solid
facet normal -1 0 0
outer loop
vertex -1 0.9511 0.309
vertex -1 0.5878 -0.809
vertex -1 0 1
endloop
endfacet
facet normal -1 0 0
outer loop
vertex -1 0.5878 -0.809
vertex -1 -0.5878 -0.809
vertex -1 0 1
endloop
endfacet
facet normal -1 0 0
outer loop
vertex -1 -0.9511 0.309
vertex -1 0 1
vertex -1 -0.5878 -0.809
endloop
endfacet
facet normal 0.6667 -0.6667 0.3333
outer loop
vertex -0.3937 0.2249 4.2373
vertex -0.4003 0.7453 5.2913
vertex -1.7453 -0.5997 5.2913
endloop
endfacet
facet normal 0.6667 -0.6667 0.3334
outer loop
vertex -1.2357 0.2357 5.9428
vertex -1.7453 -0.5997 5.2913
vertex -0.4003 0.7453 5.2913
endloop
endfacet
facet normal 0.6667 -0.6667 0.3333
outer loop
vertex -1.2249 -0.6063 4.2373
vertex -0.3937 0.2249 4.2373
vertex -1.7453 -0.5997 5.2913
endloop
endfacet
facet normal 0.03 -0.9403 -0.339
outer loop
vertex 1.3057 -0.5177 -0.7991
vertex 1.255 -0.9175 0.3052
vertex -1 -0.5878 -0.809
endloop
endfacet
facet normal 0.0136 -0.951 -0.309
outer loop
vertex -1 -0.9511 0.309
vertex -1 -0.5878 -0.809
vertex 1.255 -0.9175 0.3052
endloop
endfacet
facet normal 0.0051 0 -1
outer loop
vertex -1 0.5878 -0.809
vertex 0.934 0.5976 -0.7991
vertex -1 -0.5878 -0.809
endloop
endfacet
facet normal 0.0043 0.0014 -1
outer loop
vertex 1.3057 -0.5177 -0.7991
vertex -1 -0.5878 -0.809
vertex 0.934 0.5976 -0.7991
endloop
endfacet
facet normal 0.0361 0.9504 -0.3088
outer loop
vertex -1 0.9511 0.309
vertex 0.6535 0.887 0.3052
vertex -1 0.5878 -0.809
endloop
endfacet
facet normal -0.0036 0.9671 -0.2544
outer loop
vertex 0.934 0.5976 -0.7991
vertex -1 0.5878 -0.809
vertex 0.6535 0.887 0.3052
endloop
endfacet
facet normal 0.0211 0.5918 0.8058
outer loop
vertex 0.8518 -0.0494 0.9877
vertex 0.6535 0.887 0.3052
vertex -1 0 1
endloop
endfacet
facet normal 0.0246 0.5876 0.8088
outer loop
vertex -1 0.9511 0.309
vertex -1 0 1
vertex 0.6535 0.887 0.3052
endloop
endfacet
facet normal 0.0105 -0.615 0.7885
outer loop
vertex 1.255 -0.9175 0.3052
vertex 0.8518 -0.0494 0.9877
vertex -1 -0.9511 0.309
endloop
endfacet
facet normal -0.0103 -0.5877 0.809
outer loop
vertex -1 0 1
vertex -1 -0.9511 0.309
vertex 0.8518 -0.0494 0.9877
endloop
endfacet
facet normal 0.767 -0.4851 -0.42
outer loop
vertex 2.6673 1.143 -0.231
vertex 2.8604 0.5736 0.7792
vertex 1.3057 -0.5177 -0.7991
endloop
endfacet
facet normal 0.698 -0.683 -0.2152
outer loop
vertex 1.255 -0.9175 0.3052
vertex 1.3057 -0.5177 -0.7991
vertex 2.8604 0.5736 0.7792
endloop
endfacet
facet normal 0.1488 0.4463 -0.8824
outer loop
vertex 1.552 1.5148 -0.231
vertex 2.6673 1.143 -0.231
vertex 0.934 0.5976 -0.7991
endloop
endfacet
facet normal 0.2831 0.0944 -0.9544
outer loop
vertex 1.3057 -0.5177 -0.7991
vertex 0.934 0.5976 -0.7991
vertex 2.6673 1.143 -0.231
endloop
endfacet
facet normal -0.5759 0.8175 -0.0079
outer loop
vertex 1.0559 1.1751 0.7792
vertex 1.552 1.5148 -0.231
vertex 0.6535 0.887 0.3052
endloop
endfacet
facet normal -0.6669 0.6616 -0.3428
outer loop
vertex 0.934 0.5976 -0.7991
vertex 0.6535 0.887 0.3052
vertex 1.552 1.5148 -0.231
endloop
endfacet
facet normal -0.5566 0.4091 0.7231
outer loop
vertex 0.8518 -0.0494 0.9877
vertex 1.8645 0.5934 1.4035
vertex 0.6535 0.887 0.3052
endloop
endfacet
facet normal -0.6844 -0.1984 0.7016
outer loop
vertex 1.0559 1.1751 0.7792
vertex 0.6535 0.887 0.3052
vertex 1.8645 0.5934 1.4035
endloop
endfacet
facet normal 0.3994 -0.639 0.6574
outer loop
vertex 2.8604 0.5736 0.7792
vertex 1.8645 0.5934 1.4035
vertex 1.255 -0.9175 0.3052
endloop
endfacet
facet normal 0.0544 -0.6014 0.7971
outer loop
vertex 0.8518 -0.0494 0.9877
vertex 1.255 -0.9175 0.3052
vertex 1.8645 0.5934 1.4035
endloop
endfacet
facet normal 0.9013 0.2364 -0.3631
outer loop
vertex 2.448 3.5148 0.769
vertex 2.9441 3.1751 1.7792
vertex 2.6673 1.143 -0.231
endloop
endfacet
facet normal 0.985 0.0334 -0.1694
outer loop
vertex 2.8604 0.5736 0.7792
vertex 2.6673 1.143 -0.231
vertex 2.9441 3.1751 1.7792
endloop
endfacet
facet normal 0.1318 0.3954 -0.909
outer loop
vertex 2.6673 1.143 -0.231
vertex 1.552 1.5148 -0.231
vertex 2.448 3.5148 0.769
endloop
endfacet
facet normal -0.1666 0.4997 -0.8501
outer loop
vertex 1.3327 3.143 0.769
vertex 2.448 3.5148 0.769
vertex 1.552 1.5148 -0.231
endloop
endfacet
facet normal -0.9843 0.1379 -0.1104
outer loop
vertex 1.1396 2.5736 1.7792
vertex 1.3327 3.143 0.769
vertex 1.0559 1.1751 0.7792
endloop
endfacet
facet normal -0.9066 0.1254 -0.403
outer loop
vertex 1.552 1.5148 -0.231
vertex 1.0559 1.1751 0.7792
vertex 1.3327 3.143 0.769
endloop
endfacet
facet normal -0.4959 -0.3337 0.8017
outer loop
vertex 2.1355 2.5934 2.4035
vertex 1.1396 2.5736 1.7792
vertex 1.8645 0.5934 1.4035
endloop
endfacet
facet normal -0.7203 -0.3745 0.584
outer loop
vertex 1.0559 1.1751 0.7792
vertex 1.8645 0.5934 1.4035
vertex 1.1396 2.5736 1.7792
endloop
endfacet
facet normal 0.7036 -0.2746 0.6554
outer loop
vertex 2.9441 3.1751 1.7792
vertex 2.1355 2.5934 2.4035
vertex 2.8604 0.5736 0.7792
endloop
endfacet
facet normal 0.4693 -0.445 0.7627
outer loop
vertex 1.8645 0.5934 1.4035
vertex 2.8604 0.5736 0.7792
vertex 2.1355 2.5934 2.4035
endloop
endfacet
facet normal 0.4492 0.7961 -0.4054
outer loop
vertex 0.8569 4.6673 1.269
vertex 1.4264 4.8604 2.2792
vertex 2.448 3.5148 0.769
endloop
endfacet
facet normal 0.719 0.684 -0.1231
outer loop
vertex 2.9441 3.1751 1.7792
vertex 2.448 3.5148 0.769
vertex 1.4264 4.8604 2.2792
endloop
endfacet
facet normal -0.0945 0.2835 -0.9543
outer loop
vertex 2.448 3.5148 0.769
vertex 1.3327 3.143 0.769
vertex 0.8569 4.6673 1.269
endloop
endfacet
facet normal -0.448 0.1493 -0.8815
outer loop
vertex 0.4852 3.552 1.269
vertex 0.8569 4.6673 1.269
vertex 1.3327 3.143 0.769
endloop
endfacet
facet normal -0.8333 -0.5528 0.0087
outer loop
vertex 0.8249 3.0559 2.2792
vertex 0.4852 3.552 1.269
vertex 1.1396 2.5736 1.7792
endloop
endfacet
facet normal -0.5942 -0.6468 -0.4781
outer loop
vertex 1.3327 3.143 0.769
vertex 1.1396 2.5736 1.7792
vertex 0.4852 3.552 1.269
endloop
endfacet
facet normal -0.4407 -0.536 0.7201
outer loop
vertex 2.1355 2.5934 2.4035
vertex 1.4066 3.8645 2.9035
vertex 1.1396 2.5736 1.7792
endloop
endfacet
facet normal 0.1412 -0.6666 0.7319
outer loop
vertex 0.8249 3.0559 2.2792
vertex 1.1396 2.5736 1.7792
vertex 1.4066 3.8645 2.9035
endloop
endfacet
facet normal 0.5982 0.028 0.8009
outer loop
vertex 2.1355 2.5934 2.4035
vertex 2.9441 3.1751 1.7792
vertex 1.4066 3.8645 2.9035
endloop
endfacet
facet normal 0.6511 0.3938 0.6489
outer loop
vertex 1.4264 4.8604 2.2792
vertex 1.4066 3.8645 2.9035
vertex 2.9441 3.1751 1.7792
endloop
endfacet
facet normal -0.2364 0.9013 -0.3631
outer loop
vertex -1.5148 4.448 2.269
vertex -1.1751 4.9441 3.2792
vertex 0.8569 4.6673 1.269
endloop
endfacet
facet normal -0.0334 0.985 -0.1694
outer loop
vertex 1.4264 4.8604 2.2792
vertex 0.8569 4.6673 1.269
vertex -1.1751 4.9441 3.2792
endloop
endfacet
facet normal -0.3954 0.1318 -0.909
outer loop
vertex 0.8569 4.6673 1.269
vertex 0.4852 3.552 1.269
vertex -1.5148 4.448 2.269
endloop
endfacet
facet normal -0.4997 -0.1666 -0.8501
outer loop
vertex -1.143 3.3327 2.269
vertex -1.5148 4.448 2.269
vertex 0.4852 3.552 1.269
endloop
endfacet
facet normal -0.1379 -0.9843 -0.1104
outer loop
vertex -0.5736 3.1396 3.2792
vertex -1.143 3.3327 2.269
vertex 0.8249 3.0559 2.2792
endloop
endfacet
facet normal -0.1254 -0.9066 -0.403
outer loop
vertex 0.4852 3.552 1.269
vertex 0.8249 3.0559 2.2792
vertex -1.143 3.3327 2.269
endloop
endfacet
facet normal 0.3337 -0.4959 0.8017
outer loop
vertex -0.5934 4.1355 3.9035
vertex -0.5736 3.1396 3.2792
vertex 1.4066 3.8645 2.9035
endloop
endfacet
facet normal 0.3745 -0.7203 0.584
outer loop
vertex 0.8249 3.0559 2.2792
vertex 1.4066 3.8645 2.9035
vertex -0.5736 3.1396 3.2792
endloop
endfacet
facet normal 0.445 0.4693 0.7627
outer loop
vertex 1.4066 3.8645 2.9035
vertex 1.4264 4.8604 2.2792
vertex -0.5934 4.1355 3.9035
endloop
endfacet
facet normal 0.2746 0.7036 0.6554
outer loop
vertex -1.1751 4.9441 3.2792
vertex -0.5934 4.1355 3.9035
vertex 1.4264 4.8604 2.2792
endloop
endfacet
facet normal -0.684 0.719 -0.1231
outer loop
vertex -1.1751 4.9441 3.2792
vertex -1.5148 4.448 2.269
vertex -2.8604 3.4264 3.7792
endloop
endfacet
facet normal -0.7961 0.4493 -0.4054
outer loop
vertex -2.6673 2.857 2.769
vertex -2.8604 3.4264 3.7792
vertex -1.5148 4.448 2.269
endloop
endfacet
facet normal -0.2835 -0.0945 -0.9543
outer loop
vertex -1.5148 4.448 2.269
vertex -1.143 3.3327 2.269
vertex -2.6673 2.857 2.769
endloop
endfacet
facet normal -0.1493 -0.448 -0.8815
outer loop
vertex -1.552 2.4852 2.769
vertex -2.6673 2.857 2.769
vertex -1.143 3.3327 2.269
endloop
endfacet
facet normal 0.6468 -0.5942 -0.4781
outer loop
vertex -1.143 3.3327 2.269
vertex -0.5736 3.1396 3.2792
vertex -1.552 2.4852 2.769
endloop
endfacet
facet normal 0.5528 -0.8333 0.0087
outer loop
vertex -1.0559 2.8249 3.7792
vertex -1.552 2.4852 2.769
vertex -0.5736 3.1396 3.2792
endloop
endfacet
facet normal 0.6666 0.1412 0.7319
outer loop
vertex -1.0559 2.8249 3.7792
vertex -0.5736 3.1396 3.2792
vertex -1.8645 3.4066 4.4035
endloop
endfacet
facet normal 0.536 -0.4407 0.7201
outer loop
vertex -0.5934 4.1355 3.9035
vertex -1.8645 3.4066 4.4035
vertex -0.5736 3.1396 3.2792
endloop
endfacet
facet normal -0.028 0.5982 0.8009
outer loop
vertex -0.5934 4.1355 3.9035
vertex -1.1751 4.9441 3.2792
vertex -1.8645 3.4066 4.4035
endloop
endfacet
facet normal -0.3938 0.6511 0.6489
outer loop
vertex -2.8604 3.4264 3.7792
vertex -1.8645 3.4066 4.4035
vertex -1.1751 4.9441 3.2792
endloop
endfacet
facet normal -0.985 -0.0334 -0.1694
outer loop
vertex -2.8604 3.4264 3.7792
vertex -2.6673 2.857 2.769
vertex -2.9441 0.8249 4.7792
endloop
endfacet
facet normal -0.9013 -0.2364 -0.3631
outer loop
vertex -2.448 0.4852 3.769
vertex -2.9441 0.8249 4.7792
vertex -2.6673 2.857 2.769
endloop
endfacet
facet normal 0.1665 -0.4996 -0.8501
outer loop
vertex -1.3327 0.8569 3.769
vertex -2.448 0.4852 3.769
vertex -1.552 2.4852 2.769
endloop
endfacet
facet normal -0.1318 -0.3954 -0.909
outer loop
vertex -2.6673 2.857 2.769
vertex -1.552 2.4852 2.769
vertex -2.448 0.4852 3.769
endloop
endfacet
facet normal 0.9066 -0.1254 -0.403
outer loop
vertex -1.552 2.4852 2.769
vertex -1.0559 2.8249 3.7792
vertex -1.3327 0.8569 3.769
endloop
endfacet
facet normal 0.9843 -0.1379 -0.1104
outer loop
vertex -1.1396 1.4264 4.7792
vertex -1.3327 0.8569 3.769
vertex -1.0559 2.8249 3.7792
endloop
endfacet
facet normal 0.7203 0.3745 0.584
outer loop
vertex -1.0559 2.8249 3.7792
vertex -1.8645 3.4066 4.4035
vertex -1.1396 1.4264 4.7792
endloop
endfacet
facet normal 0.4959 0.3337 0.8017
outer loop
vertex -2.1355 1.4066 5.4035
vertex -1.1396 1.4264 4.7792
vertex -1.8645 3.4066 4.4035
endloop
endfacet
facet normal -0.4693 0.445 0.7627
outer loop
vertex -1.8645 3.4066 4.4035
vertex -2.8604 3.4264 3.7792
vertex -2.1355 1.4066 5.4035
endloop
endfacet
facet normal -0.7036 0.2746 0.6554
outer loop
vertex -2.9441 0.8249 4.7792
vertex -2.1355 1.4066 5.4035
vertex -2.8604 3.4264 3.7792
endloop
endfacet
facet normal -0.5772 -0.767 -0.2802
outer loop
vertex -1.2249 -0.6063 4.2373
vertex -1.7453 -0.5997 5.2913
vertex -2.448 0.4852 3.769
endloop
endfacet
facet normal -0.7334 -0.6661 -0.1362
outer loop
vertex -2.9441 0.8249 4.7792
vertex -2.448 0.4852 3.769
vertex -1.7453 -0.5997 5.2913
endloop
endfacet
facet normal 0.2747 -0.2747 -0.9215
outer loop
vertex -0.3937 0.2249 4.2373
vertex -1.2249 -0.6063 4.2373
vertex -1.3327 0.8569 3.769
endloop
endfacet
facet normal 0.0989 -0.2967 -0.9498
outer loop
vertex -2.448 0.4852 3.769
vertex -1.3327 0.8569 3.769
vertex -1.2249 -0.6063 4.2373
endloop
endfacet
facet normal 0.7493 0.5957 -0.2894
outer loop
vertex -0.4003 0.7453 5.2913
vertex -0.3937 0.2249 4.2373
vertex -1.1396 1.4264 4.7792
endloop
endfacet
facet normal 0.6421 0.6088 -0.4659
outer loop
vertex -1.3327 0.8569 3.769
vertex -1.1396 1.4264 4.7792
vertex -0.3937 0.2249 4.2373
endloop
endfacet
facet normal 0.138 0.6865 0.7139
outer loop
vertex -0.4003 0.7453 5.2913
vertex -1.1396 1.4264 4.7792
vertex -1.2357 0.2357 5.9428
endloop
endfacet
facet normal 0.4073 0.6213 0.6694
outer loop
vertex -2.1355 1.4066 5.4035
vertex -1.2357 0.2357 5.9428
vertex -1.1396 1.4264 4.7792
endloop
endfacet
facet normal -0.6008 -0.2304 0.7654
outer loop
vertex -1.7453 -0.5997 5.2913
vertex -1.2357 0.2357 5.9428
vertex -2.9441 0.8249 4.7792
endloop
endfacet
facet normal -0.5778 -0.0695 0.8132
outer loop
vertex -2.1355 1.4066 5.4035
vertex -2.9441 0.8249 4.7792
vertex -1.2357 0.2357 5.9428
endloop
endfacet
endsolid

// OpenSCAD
// file: path_extrude.scad
// rotation matrix implementation
// OpenSCAD seems to do this slightly different from Wikipedia
// c.f. https://en.wikipedia.org/wiki/Rotation_matrix#Basic_rotations
function rot2Mat(rotVec, axis) =
    (len(rotVec) == 2) ?
        rot2Mat([rotVec[0], rotVec[1], 0], axis) :
    (axis == "x") ?
        [[1,              0,               0],
         [0, cos(rotVec[0]),  sin(rotVec[0])],
         [0, sin(rotVec[0]), -cos(rotVec[0])]] :
    (axis == "y") ?
        [[ cos(rotVec[1]), 0, sin(rotVec[1])],
         [              0, 1,              0],
         [-sin(rotVec[1]), 0, cos(rotVec[1])]] :
    (axis == "z") ?
        [[ cos(rotVec[2]), sin(rotVec[2]), 0],
         [-sin(rotVec[2]), cos(rotVec[2]), 0],
         [0,              0,               1]] : undef;

// convert point to 3D by setting Z to zero (if not present)
function c3D(tPoints) = 
    (len(tPoints[0]) < 3) ?
        tPoints * [[1,0,0],[0,1,0]] :
        tPoints;

// rotate [2D] points using a specificed XYZ rotation vector
function myRotate(rotation, points) =
    c3D(points) * rot2Mat(rotation, "x")
           * rot2Mat(rotation, "y")
           * rot2Mat(rotation, "z");    
    
// Determine spherical rotation for cartesian coordinates
function rToS(pt) = 
    [-acos((pt[2]) / norm(pt)), 
	 0, 
	 -atan2(pt[0],pt[1])];

// Generate a line between two points in 3D space
module line3D(p1,p2){
  translate((p1+p2)/2)
    rotate(rToS(p1-p2))
       cylinder(r=1, h=norm(p1-p2), center = true, $fn = 3);
}

// Flattens an array down one level (removing the enclosing array)
function flatten(pointArray, done=0, res=[]) =
    (done == len(pointArray)) ?
        res :
        flatten(pointArray=pointArray, done=done+1, 
            res=concat(res,pointArray[done]));

// Creates a polyhedron face
function phFace(pp, tp, base, add=0) =
    [base + add, (base+1) % pp + add,
     (((base+1) % pp) + pp + add) % tp, (base + pp + add) % tp];

function add(vecArg, scArg, res=[]) = 
    (len(res) >= len(vecArg)) ?
        res :
        add(vecArg, scArg, res=concat(res,[vecArg[len(res)]+scArg]));

// Generate an extruded polyhedron from an array of points
// boolean argument "closed" indicates whether to close up the 
// start and end polygon
module makeExtrudedPoly(ex, merge=false, trimEnds=false){
    ps = flatten(ex);
    pp = len(ex[1]); // points in one polygon
    tp = len(ex[1]) * len(ex); // total number of points
    if(!merge && !trimEnds){
        polyhedron(points=ps, faces=concat(
            [[for (i = [pp-1  : -1 :    0]) i]],
            [[for (i = [tp-pp :  1 : tp-1]) i]],
            [for (pt=[0:(len(ex)-2)])
                for(i = [0:pp-1]) phFace(pp,tp,i,pt*pp)],
            [])
        );
    } else if(trimEnds) {
        polyhedron(points=ps, faces=concat(
            [[for (i = [pp*2-1  : -1 :    pp]) i]],
            [[for (i = [tp-pp*2 :  1 : tp-pp-1]) i]],
            [for (pt=[1:(len(ex)-3)])
                for(i = [0:pp-1]) phFace(pp,tp,i,pt*pp)]));
    } else {
        polyhedron(points=ps, faces=
            [for (pt=[0:(len(ex)-1)])
                for(i = [0:pp-1]) phFace(pp,tp,i,pt*pp)]);
    }
}

// Extrude polygon along a path
module path_extrude(points, path, pos=0, merge=false, trimEnds=false, doRotate=true,
                    doScale=false, extruded=[]){
    if((len(points) > 0) && (len(path) > 0) && (len(points[0]) > 1)){
        if(len(extruded) >= (len(path))){
            // extrusion is finished, so construct the object
            //echo(extruded);
            makeExtrudedPoly(extruded, merge=merge, trimEnds=trimEnds);
        } else {
            sPoints = (doScale ? (points*doScale[pos]) : points );
            // generate points from rotating polygon
            if(merge || (pos < (len(path) - 1))){
                if((pos == 0) && (!merge)) {
                    newPts = (doRotate?(myRotate(rToS(path[1] - path[0]),sPoints)):c3D(sPoints));
                    path_extrude(points=points, path=path, pos=pos+1, 
                        merge=merge, trimEnds=trimEnds, doRotate=doRotate, doScale=doScale,
                        extruded=concat(extruded, [add(newPts,path[pos])]));
                } else {
                    newPts = (doRotate?(myRotate(rToS(path[(pos+1) % len(path)] 
                        - path[(pos+len(path)-1) % len(path)]),
                        sPoints)):c3D(sPoints));
                    path_extrude(points=points, path=path, pos=pos+1,
                        merge=merge, trimEnds=trimEnds, doRotate=doRotate, doScale=doScale,
                        extruded=concat(extruded, [add(newPts,path[pos])]));
                }
            } else {
                newPts = (doRotate?(myRotate(rToS(path[pos] - path[pos-1]),sPoints)):c3D(sPoints));
                path_extrude(points=points, path=path, pos=pos+1,
                    merge=merge, trimEnds=trimEnds, doRotate=doRotate, doScale=doScale,
                    extruded=concat(extruded, [add(newPts,path[pos])]));
            }
        }
    }
}

pi=3.14159;

myPoints = [ for(t = [0:72:359]) [cos(t+45),sin(t+45)] ];
myPath = [ for(t = [0:72:359]) 
    [5*cos(t),5*sin(t), 0] ];

path_extrude(points=myPoints, path=myPath, merge=true);

translate([0,0,4]) path_extrude(points=myPoints, path=myPath,
    merge=false);

translate([0,0,-4]) path_extrude(points=myPoints, path=myPath,
    merge=false, trimEnds=true);
// main file
    use <path_extrude.scad>;
    
    myPoints = [ for(t = [0:72:359]) [cos(t-18),sin(t-18)] ];
    myPath = [[-1,0,0],[1,0,0],[2,1,0.5],[2,3,1.5],
        [1,4,2],[-1,4,3],[-2,3,3.5],[-2,1,4.5],[-1,0,5]];
    
    path_extrude(points=myPoints, path=myPath);
